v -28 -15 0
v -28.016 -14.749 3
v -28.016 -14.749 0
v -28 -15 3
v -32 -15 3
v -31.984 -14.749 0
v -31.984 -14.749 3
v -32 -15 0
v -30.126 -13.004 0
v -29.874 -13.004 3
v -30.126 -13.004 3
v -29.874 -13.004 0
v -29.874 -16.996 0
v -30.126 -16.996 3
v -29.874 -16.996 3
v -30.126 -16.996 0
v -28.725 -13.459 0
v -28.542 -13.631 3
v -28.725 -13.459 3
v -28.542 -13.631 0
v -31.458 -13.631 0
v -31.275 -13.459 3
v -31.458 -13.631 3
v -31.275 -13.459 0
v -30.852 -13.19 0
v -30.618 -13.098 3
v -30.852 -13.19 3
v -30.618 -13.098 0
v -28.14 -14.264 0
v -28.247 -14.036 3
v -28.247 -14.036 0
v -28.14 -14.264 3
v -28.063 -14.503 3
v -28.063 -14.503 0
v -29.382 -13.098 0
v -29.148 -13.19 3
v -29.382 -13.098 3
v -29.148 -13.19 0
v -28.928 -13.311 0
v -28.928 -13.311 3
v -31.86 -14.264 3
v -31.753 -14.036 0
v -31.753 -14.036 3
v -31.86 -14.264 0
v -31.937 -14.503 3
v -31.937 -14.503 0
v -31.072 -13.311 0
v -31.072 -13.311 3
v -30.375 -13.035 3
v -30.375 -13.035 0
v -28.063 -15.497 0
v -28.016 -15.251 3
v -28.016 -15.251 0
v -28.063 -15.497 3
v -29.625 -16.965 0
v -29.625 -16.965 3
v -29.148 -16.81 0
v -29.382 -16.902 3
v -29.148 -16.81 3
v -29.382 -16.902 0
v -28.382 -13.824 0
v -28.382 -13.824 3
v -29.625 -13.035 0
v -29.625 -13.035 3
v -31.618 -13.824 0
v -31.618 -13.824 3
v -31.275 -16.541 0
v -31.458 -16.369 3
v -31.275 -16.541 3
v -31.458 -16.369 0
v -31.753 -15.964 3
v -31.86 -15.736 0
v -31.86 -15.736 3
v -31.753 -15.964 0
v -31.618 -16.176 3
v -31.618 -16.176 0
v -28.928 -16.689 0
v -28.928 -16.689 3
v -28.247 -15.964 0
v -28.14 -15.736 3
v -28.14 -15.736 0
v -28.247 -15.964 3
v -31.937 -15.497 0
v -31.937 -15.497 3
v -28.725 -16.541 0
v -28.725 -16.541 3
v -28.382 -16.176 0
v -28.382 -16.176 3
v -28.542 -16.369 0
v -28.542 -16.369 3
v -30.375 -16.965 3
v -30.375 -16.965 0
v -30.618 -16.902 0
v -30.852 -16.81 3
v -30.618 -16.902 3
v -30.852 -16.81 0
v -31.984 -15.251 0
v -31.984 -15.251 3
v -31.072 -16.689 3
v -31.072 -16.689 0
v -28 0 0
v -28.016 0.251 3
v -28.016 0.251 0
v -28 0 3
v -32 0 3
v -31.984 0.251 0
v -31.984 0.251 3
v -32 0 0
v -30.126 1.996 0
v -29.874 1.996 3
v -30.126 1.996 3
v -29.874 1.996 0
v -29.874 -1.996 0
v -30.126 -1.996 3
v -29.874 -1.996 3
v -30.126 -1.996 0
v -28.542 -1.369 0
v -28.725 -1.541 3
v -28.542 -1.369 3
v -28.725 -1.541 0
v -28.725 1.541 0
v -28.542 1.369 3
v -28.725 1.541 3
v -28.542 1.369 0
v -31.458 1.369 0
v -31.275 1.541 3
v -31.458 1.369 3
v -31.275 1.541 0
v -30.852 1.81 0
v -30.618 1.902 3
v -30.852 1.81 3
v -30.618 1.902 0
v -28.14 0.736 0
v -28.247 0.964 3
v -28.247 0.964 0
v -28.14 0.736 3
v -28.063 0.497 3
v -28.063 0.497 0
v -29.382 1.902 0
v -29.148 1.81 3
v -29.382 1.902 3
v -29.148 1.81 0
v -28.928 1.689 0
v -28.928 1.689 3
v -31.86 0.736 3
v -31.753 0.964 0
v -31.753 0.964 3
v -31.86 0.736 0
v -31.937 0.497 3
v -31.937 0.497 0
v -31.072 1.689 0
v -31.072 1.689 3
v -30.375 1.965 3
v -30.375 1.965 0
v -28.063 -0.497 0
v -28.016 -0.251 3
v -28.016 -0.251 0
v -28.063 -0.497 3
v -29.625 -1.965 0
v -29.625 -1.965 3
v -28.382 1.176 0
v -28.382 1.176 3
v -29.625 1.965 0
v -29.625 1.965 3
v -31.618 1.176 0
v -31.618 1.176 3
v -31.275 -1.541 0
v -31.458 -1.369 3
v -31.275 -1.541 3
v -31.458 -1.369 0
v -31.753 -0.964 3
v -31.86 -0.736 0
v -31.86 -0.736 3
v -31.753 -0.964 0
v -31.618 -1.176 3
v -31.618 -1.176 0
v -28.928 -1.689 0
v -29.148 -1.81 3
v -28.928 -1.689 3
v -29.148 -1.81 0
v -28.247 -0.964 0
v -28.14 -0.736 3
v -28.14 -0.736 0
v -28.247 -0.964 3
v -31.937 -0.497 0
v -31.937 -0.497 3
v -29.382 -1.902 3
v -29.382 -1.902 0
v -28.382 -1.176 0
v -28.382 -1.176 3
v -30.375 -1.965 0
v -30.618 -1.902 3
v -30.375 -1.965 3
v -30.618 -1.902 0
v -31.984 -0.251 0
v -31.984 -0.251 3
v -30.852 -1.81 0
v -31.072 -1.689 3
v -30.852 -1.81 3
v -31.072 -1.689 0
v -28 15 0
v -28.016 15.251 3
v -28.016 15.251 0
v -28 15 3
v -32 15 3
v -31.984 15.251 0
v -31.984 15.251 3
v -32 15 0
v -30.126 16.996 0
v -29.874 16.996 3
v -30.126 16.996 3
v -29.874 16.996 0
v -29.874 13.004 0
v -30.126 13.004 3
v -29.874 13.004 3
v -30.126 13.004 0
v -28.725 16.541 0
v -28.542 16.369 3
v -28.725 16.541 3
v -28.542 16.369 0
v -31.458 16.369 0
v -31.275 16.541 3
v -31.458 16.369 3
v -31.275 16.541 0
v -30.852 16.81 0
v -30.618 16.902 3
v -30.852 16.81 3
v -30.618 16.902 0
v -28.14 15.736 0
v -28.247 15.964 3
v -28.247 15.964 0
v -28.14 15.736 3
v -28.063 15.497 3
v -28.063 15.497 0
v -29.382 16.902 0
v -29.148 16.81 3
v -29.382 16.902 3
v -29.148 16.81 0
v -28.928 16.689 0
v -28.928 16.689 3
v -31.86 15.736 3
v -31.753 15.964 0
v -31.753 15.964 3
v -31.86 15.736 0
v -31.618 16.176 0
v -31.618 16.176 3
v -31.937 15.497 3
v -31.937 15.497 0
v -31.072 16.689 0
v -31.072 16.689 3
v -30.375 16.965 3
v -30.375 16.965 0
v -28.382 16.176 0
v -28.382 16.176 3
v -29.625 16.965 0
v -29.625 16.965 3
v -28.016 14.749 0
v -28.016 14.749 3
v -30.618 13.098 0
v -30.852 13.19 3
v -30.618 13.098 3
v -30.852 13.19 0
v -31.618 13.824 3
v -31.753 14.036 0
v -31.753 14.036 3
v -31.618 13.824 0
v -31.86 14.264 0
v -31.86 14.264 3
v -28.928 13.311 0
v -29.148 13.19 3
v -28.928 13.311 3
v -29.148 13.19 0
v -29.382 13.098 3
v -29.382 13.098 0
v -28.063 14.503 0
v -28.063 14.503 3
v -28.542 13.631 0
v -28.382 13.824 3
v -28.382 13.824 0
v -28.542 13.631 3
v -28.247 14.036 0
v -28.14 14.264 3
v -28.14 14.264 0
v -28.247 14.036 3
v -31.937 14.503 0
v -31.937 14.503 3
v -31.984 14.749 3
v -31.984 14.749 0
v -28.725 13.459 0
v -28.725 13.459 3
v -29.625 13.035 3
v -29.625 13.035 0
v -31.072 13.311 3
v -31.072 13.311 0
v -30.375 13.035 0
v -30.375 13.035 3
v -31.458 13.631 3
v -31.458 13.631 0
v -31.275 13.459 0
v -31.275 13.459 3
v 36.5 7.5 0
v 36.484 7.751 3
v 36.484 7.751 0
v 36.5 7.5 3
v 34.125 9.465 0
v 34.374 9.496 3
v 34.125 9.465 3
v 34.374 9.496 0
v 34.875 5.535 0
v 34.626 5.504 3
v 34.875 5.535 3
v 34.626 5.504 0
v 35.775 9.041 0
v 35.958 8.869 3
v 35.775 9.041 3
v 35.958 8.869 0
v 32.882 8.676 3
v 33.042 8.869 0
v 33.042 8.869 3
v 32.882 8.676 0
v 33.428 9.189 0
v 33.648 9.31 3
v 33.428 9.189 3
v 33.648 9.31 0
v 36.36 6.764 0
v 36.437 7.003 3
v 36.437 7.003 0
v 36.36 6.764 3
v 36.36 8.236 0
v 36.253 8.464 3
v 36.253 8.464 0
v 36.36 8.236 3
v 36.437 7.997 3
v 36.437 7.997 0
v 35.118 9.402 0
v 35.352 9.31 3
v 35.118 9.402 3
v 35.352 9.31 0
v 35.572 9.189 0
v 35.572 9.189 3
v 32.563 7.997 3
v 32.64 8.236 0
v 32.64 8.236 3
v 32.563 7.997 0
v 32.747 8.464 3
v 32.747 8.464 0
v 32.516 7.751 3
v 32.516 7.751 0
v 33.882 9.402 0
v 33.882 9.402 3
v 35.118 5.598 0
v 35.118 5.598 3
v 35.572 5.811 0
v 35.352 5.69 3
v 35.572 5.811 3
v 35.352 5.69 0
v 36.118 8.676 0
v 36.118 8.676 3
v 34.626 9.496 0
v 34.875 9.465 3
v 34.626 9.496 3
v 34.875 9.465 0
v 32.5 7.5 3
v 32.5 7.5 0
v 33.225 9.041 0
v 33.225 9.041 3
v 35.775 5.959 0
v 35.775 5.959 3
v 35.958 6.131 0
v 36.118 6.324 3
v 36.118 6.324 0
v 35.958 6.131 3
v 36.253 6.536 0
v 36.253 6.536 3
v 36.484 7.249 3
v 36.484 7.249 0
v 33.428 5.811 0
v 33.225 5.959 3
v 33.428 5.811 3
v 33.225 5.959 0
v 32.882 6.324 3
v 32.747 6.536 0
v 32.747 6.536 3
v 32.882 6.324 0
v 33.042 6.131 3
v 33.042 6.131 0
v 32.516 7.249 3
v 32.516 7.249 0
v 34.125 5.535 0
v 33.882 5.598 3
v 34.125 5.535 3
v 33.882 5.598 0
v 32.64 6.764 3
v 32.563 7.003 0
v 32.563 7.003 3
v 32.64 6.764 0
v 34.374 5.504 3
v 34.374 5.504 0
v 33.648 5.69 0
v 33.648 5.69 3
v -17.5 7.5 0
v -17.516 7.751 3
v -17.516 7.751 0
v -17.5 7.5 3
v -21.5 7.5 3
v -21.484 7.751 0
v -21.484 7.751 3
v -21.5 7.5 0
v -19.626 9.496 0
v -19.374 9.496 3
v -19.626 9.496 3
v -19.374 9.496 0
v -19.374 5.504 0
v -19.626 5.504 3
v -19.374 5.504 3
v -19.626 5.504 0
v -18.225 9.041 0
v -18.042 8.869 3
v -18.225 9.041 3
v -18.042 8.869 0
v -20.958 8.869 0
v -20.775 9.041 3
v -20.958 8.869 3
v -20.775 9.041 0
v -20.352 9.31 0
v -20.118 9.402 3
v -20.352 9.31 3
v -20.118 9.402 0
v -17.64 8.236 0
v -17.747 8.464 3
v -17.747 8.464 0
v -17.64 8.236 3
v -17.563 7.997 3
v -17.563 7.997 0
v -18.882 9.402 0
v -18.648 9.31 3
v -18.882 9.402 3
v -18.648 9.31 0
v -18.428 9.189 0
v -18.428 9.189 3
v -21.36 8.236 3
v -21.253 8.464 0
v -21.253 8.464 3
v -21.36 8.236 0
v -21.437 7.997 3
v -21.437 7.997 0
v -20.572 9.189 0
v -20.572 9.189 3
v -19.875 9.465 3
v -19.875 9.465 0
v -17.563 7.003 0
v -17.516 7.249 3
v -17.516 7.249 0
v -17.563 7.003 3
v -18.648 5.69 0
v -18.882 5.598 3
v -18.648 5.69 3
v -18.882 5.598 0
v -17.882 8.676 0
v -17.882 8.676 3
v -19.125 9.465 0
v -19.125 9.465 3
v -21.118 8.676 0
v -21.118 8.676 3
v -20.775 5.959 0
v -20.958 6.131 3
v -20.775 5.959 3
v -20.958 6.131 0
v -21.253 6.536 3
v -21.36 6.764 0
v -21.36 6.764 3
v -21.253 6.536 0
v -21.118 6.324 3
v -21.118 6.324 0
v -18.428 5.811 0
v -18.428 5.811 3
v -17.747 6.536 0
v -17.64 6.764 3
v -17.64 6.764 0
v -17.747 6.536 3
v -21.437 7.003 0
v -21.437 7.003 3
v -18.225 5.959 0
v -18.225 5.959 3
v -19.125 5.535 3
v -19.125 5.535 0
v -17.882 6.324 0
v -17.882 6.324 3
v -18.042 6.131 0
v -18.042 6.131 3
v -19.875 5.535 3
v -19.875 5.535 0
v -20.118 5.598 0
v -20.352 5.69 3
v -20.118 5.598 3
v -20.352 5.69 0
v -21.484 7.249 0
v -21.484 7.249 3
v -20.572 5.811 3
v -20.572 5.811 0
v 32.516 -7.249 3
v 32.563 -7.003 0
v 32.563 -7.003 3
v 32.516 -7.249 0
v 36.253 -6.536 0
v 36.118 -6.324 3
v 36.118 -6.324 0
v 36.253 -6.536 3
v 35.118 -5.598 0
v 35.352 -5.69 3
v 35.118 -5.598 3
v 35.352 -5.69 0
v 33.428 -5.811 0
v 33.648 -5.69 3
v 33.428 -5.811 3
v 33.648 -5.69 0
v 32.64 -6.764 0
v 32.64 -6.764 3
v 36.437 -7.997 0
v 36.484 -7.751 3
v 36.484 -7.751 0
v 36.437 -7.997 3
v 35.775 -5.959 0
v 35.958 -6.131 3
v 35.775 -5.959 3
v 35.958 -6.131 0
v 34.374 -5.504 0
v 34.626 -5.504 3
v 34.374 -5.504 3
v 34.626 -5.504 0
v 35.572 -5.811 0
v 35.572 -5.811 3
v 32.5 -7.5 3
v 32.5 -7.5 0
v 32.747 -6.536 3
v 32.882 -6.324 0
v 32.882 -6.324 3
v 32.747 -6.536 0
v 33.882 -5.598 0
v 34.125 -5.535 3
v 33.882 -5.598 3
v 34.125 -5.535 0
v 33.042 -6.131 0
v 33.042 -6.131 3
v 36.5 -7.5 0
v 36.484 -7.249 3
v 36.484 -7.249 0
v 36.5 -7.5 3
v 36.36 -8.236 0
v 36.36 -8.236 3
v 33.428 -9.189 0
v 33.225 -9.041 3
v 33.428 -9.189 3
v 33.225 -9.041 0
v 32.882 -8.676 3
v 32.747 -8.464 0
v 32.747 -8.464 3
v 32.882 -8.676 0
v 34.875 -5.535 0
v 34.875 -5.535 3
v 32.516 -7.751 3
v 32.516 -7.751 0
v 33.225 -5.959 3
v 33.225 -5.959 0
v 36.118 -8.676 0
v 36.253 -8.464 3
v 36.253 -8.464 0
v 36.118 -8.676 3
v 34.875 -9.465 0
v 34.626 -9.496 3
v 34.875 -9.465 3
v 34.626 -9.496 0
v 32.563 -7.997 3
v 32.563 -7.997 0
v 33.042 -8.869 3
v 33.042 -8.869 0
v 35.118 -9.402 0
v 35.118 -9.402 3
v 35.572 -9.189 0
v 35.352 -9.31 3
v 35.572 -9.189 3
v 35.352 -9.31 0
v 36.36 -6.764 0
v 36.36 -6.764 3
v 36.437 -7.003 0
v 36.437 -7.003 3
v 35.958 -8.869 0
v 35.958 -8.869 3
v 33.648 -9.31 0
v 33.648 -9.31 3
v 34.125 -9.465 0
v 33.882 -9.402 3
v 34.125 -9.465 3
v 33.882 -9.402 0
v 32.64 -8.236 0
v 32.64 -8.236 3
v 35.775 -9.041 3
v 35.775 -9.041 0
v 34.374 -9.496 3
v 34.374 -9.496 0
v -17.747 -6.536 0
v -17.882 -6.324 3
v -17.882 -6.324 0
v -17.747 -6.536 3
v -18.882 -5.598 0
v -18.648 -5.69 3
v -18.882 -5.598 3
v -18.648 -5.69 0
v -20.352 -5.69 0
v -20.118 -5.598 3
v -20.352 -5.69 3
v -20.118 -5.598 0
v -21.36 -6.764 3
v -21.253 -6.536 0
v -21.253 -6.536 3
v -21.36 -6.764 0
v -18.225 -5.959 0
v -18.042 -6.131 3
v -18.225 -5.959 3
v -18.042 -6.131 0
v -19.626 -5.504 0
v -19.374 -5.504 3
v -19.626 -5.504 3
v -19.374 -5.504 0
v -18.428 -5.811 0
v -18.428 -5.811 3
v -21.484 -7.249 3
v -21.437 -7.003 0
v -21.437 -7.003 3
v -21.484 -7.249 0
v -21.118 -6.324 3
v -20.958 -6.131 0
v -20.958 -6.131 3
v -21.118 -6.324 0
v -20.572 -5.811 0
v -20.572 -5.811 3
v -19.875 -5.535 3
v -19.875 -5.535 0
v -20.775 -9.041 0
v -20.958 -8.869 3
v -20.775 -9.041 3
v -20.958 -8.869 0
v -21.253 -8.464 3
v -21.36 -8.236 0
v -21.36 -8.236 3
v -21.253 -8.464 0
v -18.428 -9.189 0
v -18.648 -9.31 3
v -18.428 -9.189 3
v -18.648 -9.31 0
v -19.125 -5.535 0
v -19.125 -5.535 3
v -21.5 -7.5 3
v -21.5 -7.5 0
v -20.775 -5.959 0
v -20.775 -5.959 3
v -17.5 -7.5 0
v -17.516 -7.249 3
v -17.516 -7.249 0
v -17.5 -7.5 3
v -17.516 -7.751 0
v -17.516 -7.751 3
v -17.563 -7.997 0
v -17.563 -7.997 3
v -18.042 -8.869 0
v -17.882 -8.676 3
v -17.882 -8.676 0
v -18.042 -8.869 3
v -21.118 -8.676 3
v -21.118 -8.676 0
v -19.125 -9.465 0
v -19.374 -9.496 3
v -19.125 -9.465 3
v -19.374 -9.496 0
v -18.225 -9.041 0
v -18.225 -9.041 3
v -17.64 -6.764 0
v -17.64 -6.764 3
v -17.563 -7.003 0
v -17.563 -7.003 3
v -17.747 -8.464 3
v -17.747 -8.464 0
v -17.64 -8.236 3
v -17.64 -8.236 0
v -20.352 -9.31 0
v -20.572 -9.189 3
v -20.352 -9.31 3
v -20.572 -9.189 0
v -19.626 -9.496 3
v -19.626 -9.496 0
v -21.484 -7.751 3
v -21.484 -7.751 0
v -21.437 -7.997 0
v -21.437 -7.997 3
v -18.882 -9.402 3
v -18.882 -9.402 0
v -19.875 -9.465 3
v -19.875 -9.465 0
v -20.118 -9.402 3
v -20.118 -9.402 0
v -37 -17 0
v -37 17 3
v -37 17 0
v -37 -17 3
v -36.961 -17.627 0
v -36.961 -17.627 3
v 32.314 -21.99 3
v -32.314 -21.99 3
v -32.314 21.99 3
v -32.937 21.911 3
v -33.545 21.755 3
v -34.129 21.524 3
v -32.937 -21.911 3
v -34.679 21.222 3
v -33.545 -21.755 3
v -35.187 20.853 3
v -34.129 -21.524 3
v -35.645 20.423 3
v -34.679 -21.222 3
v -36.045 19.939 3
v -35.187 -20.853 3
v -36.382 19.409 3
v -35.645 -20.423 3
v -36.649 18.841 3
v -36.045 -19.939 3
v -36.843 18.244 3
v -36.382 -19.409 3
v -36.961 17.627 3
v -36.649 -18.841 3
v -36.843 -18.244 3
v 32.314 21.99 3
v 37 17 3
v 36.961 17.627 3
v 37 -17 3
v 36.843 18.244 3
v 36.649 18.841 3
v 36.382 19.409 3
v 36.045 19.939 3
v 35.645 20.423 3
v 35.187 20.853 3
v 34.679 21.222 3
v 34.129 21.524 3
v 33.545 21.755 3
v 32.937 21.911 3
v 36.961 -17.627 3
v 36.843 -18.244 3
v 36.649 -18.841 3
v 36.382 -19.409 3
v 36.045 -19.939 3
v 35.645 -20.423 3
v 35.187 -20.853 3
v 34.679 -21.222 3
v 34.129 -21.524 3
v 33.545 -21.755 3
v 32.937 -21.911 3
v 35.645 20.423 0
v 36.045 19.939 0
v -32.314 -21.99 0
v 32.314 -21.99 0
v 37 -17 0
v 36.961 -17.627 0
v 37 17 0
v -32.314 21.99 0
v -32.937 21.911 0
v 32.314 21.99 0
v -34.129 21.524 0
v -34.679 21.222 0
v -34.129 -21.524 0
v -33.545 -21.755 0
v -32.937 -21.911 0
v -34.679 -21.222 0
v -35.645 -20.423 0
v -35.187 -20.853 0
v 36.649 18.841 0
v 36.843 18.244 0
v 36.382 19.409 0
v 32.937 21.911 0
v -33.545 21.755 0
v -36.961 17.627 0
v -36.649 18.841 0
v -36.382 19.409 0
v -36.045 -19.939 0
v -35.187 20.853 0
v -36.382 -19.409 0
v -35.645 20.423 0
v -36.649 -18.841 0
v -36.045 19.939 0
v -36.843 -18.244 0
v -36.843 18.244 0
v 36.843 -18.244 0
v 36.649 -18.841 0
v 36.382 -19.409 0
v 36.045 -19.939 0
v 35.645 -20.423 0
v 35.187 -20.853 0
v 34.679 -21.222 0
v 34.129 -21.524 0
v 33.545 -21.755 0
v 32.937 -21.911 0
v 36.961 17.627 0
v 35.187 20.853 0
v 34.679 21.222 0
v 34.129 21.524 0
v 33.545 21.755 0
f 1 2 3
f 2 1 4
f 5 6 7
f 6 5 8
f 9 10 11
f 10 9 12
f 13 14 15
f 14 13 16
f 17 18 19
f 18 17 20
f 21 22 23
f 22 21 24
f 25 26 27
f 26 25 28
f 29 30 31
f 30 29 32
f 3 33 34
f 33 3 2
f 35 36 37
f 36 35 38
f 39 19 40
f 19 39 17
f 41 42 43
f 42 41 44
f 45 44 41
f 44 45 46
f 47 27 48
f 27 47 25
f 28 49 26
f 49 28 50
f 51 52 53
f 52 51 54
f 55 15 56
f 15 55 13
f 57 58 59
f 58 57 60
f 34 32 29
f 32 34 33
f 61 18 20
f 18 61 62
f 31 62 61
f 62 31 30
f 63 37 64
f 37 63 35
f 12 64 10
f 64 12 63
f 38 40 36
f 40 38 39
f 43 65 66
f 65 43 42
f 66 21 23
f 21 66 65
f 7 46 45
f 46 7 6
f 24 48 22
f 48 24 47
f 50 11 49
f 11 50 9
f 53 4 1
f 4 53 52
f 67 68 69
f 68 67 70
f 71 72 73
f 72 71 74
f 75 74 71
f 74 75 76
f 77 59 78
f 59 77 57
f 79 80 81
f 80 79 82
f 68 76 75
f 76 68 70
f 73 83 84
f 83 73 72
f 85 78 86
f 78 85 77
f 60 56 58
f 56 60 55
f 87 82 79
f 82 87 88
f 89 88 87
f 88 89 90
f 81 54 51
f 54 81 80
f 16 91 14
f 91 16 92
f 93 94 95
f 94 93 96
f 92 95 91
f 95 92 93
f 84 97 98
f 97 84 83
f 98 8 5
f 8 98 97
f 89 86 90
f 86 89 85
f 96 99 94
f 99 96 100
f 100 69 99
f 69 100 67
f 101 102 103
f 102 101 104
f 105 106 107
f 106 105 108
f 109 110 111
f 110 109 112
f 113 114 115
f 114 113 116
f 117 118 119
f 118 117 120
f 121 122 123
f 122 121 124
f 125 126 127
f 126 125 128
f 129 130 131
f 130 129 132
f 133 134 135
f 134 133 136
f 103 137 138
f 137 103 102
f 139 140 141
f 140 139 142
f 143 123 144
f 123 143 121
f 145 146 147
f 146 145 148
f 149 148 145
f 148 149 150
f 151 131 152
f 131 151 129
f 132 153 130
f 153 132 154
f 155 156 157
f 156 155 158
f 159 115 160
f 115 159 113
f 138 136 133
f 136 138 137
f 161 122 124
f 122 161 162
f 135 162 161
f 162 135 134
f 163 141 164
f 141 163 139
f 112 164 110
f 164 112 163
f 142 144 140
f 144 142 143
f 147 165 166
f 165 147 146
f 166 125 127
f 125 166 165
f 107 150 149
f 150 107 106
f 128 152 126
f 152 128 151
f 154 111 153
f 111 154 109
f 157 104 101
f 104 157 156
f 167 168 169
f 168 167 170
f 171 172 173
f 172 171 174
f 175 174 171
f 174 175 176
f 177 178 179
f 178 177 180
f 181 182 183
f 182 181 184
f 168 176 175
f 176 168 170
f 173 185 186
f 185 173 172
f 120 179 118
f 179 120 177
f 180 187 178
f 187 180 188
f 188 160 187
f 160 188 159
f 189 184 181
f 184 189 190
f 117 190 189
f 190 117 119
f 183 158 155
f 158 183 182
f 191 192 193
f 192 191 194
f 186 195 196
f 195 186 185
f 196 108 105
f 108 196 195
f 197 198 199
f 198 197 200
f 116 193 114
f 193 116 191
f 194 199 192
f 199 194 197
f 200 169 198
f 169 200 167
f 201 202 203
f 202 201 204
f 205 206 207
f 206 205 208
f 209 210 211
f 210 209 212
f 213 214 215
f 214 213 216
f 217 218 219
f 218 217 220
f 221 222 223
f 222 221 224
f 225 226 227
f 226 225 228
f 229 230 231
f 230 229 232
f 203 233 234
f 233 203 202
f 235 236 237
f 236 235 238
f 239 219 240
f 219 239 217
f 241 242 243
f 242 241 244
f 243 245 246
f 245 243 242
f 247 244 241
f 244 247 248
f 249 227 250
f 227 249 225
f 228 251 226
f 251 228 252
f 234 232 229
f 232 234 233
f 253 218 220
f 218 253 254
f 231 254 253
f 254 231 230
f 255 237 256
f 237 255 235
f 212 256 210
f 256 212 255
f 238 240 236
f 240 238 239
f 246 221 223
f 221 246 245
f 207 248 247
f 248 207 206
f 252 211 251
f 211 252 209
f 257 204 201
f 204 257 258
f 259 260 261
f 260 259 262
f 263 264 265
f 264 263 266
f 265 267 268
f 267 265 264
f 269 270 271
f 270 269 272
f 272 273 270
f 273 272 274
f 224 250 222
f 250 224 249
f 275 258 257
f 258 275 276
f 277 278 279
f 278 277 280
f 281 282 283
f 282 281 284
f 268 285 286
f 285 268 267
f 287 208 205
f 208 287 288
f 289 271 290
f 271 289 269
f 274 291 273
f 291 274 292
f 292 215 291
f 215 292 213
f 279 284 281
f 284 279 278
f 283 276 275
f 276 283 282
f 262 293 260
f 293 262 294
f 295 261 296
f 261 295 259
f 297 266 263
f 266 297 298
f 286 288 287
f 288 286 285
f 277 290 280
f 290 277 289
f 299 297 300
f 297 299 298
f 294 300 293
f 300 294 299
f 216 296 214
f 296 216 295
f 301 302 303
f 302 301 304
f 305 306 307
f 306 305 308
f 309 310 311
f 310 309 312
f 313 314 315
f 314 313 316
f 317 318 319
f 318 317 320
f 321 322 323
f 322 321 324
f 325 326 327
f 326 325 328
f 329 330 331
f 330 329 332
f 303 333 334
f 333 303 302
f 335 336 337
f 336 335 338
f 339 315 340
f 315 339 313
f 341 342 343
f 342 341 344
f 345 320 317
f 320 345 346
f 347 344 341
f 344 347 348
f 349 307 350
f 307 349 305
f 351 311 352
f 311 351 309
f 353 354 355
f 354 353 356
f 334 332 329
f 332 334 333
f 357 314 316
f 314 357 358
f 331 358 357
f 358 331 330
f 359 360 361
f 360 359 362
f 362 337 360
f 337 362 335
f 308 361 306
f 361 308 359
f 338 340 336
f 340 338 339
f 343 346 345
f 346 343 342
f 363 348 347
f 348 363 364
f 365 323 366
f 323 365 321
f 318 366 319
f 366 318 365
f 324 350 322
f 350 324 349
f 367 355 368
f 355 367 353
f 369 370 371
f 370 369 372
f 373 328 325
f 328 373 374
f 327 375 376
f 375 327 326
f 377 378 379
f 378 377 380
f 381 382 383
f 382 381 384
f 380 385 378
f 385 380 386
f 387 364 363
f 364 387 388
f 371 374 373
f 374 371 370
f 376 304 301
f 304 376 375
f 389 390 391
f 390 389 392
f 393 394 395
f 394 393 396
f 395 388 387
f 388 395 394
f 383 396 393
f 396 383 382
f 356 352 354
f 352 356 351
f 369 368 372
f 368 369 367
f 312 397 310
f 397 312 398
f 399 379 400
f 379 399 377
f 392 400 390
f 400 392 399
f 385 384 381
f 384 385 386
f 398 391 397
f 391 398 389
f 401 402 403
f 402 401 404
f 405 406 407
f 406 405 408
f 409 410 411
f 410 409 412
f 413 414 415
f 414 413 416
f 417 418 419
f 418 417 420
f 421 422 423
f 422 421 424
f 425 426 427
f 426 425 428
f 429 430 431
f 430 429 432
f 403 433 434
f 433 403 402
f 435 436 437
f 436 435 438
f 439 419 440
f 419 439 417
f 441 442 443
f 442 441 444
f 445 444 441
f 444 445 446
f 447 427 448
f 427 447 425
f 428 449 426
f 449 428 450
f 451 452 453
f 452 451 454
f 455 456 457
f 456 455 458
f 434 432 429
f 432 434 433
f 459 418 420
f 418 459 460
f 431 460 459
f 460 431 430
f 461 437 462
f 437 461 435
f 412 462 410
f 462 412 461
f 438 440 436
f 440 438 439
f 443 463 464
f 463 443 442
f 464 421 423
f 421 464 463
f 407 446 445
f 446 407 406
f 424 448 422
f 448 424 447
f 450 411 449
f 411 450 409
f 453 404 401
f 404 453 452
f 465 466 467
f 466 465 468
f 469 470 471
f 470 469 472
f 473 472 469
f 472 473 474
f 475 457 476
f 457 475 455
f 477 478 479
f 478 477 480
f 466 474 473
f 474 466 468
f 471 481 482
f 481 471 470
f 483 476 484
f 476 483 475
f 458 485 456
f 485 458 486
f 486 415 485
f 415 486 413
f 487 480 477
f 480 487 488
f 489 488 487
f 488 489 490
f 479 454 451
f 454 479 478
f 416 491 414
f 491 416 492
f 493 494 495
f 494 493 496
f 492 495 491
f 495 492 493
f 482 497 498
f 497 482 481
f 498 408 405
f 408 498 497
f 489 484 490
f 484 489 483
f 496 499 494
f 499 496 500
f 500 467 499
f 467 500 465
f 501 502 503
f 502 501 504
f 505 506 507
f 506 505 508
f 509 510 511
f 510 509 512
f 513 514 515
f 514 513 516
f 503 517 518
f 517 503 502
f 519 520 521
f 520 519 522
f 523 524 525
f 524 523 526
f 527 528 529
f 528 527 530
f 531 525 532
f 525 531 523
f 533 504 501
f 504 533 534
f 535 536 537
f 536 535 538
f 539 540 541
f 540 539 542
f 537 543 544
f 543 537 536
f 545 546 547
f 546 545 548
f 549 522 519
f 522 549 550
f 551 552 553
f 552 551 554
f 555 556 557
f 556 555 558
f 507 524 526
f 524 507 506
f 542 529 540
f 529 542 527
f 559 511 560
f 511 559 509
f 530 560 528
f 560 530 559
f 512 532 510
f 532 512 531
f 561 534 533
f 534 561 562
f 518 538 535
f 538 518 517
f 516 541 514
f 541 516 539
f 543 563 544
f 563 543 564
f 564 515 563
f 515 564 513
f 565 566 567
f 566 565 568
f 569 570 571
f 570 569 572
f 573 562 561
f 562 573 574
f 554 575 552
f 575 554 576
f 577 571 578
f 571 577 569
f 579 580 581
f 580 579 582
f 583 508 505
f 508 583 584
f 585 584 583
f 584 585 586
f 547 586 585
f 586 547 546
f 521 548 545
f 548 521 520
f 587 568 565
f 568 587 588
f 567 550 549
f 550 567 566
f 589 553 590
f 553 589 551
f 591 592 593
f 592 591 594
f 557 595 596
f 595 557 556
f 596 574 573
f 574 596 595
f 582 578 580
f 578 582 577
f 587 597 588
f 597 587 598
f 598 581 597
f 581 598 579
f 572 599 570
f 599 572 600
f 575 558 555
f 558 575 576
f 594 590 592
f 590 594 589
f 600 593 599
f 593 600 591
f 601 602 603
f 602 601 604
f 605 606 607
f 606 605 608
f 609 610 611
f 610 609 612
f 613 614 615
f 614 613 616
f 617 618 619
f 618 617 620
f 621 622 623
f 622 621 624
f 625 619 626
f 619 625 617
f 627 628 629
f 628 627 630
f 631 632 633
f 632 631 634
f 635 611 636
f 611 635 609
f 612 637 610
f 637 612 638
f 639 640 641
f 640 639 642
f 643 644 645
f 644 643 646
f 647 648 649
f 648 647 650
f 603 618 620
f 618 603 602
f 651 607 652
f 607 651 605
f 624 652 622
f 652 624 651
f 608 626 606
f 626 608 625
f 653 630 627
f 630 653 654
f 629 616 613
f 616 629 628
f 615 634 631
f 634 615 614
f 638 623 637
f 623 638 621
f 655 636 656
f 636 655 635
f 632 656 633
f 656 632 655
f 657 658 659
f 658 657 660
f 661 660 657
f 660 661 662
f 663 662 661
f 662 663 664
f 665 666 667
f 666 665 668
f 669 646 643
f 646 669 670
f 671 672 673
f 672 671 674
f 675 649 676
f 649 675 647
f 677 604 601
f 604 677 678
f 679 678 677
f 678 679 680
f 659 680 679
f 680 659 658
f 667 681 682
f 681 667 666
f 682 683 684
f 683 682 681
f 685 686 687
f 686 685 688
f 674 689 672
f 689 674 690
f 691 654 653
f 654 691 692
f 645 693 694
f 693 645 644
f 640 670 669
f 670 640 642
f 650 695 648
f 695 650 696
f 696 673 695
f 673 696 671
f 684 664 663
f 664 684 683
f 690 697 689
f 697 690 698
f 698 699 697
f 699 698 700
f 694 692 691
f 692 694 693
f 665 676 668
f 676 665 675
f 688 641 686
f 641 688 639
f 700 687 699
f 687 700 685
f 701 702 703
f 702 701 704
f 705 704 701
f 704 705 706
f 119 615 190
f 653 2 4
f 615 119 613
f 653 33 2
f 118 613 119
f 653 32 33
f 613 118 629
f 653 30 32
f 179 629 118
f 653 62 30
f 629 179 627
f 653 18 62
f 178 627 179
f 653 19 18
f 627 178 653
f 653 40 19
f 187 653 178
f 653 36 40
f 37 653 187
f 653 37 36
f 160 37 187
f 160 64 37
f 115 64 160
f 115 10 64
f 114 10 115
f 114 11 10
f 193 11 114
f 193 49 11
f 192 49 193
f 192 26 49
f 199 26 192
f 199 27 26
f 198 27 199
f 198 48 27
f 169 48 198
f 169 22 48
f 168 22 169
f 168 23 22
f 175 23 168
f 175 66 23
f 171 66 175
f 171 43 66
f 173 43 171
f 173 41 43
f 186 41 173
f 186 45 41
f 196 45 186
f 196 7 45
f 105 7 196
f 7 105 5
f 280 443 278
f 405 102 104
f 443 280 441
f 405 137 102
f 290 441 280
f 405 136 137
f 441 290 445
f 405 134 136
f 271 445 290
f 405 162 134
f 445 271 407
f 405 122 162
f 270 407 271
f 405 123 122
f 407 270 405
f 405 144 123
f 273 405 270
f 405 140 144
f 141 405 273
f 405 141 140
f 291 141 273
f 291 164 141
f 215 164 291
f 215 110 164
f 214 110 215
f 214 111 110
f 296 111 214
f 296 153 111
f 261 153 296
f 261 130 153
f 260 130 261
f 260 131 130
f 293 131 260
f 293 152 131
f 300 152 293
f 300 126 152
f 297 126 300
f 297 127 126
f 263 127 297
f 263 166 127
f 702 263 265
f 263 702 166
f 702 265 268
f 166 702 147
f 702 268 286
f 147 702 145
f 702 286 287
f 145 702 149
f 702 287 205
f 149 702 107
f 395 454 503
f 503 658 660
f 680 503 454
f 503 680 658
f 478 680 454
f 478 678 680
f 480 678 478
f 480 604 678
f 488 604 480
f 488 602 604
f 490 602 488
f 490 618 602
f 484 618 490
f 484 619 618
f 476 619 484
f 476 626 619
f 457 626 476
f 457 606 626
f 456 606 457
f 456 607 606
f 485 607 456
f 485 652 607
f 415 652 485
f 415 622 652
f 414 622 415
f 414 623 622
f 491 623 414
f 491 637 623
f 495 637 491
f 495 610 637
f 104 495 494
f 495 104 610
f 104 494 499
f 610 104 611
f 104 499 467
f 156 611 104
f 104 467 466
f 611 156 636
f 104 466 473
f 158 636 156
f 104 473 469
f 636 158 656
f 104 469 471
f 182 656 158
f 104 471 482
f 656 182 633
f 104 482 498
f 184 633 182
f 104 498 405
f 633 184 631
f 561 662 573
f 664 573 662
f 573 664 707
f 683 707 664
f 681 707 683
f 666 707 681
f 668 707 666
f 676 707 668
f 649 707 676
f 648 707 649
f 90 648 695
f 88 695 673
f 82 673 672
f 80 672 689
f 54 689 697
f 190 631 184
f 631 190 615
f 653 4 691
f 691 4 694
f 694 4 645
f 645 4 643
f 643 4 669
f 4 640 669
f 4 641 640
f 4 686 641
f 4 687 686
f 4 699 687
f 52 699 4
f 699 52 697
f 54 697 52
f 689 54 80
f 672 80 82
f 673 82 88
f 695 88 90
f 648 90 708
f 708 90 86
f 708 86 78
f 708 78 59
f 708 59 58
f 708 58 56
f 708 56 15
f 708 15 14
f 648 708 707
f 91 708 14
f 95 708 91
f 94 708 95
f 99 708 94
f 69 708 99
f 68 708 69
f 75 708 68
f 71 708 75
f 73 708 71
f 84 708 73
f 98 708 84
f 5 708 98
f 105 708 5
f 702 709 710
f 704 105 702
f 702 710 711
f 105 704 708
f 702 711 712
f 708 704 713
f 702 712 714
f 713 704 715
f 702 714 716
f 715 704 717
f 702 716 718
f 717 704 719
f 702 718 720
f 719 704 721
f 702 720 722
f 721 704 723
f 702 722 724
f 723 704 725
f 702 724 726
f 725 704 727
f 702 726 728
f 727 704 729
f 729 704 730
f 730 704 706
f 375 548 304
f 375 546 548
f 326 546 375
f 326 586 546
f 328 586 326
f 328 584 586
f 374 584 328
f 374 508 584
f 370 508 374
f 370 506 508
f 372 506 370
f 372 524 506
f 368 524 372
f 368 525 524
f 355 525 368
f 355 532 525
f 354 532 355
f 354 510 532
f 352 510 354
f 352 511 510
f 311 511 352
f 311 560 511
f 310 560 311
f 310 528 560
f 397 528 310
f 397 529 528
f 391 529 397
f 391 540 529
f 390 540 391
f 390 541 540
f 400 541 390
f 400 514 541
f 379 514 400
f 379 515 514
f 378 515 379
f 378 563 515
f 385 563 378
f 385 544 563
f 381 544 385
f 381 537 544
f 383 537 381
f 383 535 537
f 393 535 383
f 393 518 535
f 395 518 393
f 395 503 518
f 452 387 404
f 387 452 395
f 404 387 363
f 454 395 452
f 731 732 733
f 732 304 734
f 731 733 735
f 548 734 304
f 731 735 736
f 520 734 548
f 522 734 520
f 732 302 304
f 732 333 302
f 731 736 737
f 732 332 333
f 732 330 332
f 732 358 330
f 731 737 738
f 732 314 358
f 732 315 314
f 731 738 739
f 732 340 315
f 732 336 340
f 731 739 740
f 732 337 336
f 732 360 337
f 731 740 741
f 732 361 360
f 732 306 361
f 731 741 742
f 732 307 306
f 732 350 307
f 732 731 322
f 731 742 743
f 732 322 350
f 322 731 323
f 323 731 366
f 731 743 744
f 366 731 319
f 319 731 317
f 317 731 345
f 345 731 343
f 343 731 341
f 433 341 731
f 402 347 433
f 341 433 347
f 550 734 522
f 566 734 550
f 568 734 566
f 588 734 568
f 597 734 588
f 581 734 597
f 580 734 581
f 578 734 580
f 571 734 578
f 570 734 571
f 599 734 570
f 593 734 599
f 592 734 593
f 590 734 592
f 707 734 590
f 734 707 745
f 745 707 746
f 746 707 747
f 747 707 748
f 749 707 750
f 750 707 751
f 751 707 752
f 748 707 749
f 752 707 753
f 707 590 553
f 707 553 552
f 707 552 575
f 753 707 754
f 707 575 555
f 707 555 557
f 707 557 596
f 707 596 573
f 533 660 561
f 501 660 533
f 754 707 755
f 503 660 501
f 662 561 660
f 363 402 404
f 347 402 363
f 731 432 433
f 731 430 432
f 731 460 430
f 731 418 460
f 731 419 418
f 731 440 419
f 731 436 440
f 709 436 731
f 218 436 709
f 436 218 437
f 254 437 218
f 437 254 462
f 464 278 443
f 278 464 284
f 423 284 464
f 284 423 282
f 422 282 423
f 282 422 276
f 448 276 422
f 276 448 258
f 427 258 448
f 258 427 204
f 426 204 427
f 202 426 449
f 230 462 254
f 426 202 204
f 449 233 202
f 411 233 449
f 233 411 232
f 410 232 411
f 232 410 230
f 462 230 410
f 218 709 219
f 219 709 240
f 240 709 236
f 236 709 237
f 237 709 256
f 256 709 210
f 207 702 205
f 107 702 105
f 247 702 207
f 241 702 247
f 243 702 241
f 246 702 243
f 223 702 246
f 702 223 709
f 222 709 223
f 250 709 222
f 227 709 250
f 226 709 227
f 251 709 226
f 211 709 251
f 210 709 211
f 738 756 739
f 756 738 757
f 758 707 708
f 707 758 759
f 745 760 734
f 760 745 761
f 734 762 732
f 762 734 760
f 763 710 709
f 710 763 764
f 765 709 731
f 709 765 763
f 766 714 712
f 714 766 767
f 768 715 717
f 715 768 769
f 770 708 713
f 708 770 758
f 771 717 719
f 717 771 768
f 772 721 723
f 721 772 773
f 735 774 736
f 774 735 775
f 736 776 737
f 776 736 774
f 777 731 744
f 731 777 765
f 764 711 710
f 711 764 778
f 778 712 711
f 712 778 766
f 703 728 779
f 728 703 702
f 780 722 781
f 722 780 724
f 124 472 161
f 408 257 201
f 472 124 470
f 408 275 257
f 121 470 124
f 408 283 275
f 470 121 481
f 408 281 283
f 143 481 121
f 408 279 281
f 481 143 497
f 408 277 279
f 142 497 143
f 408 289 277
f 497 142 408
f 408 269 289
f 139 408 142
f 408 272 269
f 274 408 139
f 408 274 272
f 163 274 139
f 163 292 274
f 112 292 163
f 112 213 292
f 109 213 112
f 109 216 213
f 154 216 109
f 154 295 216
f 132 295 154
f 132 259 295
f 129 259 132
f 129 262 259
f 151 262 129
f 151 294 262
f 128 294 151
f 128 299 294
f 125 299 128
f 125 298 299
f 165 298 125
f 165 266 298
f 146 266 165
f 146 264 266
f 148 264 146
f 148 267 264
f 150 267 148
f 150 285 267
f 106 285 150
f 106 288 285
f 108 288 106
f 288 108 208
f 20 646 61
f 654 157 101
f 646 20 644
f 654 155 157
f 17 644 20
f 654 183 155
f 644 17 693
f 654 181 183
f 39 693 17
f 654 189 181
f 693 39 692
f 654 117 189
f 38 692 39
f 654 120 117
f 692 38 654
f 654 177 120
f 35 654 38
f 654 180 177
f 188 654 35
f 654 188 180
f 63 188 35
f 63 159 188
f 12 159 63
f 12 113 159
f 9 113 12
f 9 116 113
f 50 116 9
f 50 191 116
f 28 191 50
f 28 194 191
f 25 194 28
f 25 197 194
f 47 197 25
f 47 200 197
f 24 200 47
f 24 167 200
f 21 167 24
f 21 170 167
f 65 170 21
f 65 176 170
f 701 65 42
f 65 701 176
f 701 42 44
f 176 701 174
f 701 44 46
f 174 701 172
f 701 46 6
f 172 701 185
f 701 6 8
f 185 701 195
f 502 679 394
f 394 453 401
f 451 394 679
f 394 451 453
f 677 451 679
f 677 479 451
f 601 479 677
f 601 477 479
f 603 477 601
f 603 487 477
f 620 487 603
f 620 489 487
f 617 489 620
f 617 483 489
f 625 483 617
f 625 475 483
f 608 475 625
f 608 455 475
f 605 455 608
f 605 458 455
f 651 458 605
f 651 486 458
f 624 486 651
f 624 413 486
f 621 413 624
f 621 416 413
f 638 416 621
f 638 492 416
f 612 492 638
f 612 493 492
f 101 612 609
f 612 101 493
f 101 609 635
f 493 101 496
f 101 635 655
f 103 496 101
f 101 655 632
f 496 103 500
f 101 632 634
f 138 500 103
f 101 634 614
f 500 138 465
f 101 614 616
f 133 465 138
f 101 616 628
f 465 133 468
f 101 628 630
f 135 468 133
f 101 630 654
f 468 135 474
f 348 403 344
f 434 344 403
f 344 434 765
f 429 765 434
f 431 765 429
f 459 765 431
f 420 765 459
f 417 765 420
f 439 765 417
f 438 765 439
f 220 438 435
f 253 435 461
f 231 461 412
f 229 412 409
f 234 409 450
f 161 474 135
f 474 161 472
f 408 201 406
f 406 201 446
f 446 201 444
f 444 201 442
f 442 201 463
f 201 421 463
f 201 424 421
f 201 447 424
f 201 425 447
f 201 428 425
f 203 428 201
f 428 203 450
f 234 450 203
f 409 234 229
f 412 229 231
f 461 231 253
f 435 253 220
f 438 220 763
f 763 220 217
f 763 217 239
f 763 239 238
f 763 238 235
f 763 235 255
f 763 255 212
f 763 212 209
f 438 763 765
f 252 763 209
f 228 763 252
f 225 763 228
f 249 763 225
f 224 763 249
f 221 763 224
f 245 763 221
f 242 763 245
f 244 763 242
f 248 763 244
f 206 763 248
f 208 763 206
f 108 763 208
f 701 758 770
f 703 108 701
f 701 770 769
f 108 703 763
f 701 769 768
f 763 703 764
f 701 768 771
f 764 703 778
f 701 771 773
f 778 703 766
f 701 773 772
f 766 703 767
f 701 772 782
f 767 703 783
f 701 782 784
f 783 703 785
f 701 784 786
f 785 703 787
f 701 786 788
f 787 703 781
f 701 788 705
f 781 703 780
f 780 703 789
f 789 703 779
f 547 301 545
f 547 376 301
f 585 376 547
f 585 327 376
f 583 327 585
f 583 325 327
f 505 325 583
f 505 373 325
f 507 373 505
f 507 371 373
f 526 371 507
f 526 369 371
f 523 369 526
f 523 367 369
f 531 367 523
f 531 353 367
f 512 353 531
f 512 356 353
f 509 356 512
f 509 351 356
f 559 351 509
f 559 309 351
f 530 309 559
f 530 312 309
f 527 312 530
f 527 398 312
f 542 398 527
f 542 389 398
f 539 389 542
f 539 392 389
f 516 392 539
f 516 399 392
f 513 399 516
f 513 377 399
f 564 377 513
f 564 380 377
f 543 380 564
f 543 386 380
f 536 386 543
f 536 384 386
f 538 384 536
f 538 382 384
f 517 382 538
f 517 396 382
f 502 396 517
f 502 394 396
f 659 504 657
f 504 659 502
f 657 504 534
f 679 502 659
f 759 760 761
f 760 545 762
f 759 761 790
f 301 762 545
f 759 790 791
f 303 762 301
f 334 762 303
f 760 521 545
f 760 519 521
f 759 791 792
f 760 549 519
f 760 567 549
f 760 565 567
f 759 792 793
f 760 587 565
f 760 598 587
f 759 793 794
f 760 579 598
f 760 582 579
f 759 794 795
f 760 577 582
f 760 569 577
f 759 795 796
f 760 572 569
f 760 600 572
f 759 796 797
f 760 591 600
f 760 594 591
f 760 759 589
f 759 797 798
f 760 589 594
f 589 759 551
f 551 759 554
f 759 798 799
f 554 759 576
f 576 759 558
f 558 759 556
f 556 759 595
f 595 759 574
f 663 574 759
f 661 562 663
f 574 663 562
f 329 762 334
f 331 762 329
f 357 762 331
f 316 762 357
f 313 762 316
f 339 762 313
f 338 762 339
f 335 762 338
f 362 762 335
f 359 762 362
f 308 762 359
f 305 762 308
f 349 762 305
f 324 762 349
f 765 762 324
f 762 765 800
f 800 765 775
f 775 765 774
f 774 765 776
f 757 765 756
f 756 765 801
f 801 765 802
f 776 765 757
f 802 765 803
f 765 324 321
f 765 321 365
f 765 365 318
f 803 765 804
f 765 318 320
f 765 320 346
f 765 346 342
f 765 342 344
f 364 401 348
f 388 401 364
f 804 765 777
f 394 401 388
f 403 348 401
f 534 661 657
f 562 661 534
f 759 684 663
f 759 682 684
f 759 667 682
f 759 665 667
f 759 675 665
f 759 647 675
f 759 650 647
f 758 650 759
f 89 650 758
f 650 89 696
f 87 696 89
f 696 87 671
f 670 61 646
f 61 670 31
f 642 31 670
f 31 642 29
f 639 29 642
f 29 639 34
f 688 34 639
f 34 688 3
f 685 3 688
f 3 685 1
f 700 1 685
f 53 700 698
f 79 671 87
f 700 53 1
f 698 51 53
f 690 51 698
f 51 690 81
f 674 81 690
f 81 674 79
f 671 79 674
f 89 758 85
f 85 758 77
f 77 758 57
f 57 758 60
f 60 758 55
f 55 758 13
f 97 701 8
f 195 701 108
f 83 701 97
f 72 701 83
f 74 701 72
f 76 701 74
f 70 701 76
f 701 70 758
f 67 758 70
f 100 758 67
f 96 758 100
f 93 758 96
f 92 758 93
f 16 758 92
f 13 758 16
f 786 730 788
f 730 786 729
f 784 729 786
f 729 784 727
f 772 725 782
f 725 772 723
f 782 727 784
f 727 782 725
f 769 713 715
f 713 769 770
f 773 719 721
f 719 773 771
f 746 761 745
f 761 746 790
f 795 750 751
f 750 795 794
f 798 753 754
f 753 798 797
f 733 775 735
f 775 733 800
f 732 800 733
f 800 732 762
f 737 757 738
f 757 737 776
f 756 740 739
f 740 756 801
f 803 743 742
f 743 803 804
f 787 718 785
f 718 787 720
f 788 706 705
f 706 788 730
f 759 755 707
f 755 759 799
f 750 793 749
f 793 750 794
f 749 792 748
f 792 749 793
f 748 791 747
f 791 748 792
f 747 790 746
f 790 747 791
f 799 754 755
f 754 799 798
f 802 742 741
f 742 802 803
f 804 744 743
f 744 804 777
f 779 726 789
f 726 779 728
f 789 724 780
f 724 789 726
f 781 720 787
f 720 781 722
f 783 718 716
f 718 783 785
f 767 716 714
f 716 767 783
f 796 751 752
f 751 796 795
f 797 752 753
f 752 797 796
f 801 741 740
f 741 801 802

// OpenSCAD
$fn = 50;


difference() {
	union() {
		translate(v = [0, 0, 0]) {
			rotate(a = [0, 0, 0]) {
				hull() {
					translate(v = [-32.0000000000, 17.0000000000, 0]) {
						rotate(a = [0, 0, 0]) {
							translate(v = [0, 0, 0]) {
								rotate(a = [0, 0, 0]) {
									cylinder(h = 3, r = 5);
								}
							}
						}
					}
					translate(v = [32.0000000000, 17.0000000000, 0]) {
						rotate(a = [0, 0, 0]) {
							translate(v = [0, 0, 0]) {
								rotate(a = [0, 0, 0]) {
									cylinder(h = 3, r = 5);
								}
							}
						}
					}
					translate(v = [-32.0000000000, -17.0000000000, 0]) {
						rotate(a = [0, 0, 0]) {
							translate(v = [0, 0, 0]) {
								rotate(a = [0, 0, 0]) {
									cylinder(h = 3, r = 5);
								}
							}
						}
					}
					translate(v = [32.0000000000, -17.0000000000, 0]) {
						rotate(a = [0, 0, 0]) {
							translate(v = [0, 0, 0]) {
								rotate(a = [0, 0, 0]) {
									cylinder(h = 3, r = 5);
								}
							}
						}
					}
				}
			}
		}
	}
	union() {
		translate(v = [-30.0000000000, -15.0000000000, -125.0000000000]) {
			rotate(a = [0, 0, 0]) {
				cylinder(h = 250, r = 2.0000000000);
			}
		}
		translate(v = [-30.0000000000, 0.0000000000, -125.0000000000]) {
			rotate(a = [0, 0, 0]) {
				cylinder(h = 250, r = 2.0000000000);
			}
		}
		translate(v = [-30.0000000000, 15.0000000000, -125.0000000000]) {
			rotate(a = [0, 0, 0]) {
				cylinder(h = 250, r = 2.0000000000);
			}
		}
		translate(v = [34.5000000000, 7.5000000000, -125.0000000000]) {
			rotate(a = [0, 0, 0]) {
				cylinder(h = 250, r = 2.0000000000);
			}
		}
		translate(v = [-19.5000000000, 7.5000000000, -125.0000000000]) {
			rotate(a = [0, 0, 0]) {
				cylinder(h = 250, r = 2.0000000000);
			}
		}
		translate(v = [34.5000000000, -7.5000000000, -125.0000000000]) {
			rotate(a = [0, 0, 0]) {
				cylinder(h = 250, r = 2.0000000000);
			}
		}
		translate(v = [-19.5000000000, -7.5000000000, -125.0000000000]) {
			rotate(a = [0, 0, 0]) {
				cylinder(h = 250, r = 2.0000000000);
			}
		}
	}
}
